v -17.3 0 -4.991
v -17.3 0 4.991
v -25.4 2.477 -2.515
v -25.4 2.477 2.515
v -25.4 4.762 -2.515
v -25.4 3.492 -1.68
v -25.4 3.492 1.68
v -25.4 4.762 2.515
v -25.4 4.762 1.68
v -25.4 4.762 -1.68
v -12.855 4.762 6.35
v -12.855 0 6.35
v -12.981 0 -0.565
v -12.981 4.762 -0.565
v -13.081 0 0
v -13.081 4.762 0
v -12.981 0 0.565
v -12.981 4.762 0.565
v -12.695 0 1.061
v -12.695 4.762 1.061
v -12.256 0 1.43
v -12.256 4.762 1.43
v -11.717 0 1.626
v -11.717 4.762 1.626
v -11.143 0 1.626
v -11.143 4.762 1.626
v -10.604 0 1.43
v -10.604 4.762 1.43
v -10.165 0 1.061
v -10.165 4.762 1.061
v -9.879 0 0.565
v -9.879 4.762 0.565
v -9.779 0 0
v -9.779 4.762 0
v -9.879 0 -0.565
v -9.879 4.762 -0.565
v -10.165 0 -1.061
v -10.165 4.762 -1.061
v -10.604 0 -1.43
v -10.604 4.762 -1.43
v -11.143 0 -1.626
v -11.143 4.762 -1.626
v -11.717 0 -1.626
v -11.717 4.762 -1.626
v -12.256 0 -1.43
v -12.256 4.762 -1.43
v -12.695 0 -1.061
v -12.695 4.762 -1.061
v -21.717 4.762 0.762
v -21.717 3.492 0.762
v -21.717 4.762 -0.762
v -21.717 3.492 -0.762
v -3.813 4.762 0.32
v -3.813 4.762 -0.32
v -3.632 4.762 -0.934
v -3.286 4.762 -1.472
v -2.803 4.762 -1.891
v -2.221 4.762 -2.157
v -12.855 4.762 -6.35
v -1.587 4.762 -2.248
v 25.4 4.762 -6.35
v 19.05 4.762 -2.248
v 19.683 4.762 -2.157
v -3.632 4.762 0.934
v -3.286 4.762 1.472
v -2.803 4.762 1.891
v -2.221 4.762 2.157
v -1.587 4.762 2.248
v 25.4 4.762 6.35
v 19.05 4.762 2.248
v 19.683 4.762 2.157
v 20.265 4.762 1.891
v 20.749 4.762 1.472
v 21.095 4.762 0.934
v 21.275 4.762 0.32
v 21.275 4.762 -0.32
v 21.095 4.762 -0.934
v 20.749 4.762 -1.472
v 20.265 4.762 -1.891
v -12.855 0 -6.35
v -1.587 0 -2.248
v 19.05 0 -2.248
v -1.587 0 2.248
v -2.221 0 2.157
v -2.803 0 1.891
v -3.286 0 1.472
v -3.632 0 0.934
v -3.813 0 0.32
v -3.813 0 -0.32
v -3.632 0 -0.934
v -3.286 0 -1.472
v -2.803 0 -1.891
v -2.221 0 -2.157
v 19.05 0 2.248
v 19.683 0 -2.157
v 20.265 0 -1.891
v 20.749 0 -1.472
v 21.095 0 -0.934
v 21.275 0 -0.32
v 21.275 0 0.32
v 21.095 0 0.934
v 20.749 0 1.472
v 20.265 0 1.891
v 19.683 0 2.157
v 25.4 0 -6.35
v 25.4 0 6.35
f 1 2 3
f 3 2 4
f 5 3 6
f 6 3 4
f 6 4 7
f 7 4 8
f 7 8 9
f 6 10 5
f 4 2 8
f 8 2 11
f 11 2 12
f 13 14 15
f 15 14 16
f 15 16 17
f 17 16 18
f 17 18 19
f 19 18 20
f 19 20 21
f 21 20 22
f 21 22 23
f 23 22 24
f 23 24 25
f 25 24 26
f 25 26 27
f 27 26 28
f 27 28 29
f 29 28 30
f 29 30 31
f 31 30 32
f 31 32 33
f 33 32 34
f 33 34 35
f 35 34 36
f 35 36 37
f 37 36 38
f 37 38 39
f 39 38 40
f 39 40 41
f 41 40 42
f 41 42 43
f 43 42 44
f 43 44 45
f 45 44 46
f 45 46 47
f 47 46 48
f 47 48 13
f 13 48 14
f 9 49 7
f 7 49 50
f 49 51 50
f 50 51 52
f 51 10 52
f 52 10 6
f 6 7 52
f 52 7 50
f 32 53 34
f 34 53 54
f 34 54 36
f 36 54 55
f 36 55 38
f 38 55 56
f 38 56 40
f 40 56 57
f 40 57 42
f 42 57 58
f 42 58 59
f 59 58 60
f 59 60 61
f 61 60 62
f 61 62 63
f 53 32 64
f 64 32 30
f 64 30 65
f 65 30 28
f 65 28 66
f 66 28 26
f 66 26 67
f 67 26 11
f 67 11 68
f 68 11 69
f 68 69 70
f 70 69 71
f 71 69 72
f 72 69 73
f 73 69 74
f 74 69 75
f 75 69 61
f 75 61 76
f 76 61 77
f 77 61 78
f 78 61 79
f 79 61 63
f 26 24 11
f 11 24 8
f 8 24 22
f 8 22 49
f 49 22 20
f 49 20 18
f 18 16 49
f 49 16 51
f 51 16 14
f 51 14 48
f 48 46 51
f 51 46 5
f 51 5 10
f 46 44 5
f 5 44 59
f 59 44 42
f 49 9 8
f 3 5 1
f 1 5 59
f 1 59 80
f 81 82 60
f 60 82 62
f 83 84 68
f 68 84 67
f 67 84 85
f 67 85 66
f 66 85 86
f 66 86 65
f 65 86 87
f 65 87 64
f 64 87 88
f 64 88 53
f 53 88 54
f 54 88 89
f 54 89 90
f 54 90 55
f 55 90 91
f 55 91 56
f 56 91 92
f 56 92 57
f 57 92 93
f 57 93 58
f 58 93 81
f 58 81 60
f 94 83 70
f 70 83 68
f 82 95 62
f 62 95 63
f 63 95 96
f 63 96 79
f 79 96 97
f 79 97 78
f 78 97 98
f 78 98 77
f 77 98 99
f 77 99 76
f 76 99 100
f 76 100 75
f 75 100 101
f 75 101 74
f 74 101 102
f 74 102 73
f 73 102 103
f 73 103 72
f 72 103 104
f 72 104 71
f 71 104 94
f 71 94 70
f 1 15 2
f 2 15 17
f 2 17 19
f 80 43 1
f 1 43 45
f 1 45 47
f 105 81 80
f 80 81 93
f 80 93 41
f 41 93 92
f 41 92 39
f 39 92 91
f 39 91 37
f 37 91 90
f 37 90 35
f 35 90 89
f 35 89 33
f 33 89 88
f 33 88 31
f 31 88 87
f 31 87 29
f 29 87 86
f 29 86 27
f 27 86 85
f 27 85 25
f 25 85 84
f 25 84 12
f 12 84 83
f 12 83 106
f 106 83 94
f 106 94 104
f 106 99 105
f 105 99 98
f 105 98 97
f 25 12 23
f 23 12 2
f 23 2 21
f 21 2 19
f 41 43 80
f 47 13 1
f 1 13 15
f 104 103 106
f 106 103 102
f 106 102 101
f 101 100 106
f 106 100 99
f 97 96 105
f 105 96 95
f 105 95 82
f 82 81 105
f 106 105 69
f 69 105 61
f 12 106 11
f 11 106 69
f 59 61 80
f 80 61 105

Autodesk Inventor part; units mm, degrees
ref_plane "XZ Plane" through (0, 0, 0) normal (0, 1, 0) x (-1, 0, 0)
sketch "Sketch1" plane through (0, 0, 0) normal (0, 1, 0) x (-1, 0, 0)
  line L0 (0, -8.89) -> (0, 8.89) projected
  line L1 (-35.56, 0) -> (35.56, 0) projected
  line L2 (25.4, -6.35) -> (-25.4, -6.35)
  line L3 (-25.4, -6.35) -> (-25.4, 6.35)
  line L4 (-25.4, 6.35) -> (25.4, 6.35)
  line L5 (25.4, 6.35) -> (25.4, -6.35)
  point P0 (0, 0)
  dimension "d0" = 12.7
  dimension "d1" = 6.35
  dimension "d2" = 50.8
  dimension "d3" = 25.4
extrude "Extrusion1" add sketch "Sketch1" along normal blind 4.7625
sketch "Sketch2" plane through (0, 4.7625, 0) normal (0, 1, 0) x (1, 0, 0)
  line L0 (25.4, 6.35) -> (-25.4, 6.35) projected
  line L1 (-25.4, 6.35) -> (-25.4, -6.35) projected
  line L2 (-25.4, -6.35) -> (25.4, -6.35) projected
  line L3 (25.4, -6.35) -> (25.4, 6.35) projected
  line L4 (-25.4, 2.5146) -> (-12.855, 6.35)
  line L5 (25.4, 6.35) -> (-25.4, 6.35) projected
  line L6 (-25.4, 6.35) -> (-25.4, -6.35) projected
  line L7 (-25.4, -2.5146) -> (-12.855, -6.35)
  line L8 (-12.855, 6.35) -> (-12.855, -6.35) construction
  line L9 (0, 8.89) -> (0, -8.89) projected
  line L10 (35.56, 0) -> (-35.56, 0) projected
  line L11 (-1.5875, 2.2479) -> (19.05, 2.2479)
  line L12 (19.05, 2.2479) -> (19.05, -2.2479)
  line L13 (19.05, -2.2479) -> (-1.5875, -2.2479)
  line L14 (-1.5875, -2.2479) -> (-1.5875, 2.2479)
  circle A0 centre (19.05, 0) radius 2.2479
  circle A1 centre (-1.5875, 0) radius 2.2479
  point P0 (0, 0)
  dimension "d6" = 163
  dimension "d7" = 163
  dimension "d8" = 5.0292
  dimension "d9" = 4.4958
  dimension "d10" = 6.35
  dimension "d11" = 20.6375
extrude "Extrusion2" cut sketch "Sketch2" against normal through all contours L4 L1 L0 | L11 A0 L10 A1 L9 | L9 A1 L11 | A1 L10 L9 | L9 L10 L14 A1 | L14 L10 A1 | A0 L10 L12 | L12 L10 A0 | L7 L2 L1 | L10 L14 A1 | A0 L12 L10 | L10 A1 L9 | L9 A1 L14 L10 | L10 A0 L13 L9 A1 | L12 A0 L10 | A1 L9 L13
sketch "Sketch3" plane through (0, 4.7625, 0) normal (0, 1, 0) x (1, 0, 0)
  line L0 (-25.4, -2.5146) -> (-12.855, -6.35) projected
  line L1 (-12.855, -6.35) -> (25.4, -6.35) projected
  line L2 (25.4, -6.35) -> (25.4, 6.35) projected
  line L3 (25.4, 6.35) -> (-12.855, 6.35) projected
  line L4 (-12.855, 6.35) -> (-25.4, 2.5146) projected
  line L5 (-25.4, 2.5146) -> (-25.4, -2.5146) projected
  line L6 (19.05, -2.2479) -> (-1.5875, -2.2479) projected
  arc A0 (-1.5875, 2.2479) -> (-1.5875, -2.2479) centre (-1.5875, 0) ccw projected
  line L7 (-1.5875, 2.2479) -> (19.05, 2.2479) projected
  arc A1 (19.05, -2.2479) -> (19.05, 2.2479) centre (19.05, 0) ccw projected
  line L8 (35.56, 0) -> (-35.56, 0) projected
  line L9 (-25.4, 1.6803) -> (-21.717, 0.762)
  line L10 (-21.717, 0.762) -> (-21.717, -0.762)
  line L11 (-21.717, -0.762) -> (-25.4, -1.6803)
  line L12 (-25.4, 2.5146) -> (-25.4, -2.5146) projected
  line L13 (-25.4, 1.6803) -> (-25.4, -1.6803)
  point P0 (0, 0)
  dimension "d14" = 28
  dimension "d15" = 14
  dimension "d16" = 3.683
  dimension "d17" = 1.524
  dimension "d18" = 0.762
extrude "Extrusion3" cut sketch "Sketch3" against normal blind 1.27 contours L5 L8 L10 L11 | L5 L9 L10 L8
sketch "Sketch4" plane through (0, 4.7625, 0) normal (0, 1, 0) x (1, 0, 0)
  line L0 (19.05, -2.2479) -> (-1.5875, -2.2479) projected
  arc A0 (-1.5875, 2.2479) -> (-1.5875, -2.2479) centre (-1.5875, 0) ccw projected
  line L1 (-1.5875, 2.2479) -> (19.05, 2.2479) projected
  arc A1 (19.05, -2.2479) -> (19.05, 2.2479) centre (19.05, 0) ccw projected
  line L2 (-25.4, 1.6803) -> (-21.717, 0.762) projected
  line L3 (-21.717, 0.762) -> (-21.717, -0.762) projected
  line L4 (-21.717, -0.762) -> (-25.4, -1.6803) projected
  line L5 (-25.4, -1.6803) -> (-25.4, -2.5146) projected
  line L6 (-25.4, -2.5146) -> (-12.855, -6.35) projected
  line L7 (-12.855, -6.35) -> (25.4, -6.35) projected
  line L8 (25.4, -6.35) -> (25.4, 6.35) projected
  line L9 (25.4, 6.35) -> (-12.855, 6.35) projected
  line L10 (-12.855, 6.35) -> (-25.4, 2.5146) projected
  line L11 (-25.4, 2.5146) -> (-25.4, 1.6803) projected
  line L12 (0, 8.89) -> (0, -8.89) projected
  line L13 (35.56, 0) -> (-35.56, 0) projected
  point P0 (0, 0)
  point P1 (-11.43, 0)
  dimension "d21" = 36.83
hole "Hole1" at (-11.43, 4.7625, 0) direction (0, -1, 0) diameter 3.302 depth 12.2936 tip angle 118 thread size "8-32 UNC" class "2B" standard "ANSI Unified Screw Threads"
sketch "Sketch6" plane through (25.4, 0, 6.35) normal (0, 0, 1) x (1, 0, 0)
  line L0 (-38.255, 0) -> (-50.8, 0) projected
  line L1 (-38.255, 4.7625) -> (-38.255, 0) projected
  line L2 (-50.8, 4.7625) -> (-38.255, 4.7625) projected
  line L3 (-50.8, 0) -> (-50.8, 4.7625) projected
  line L4 (-38.255, 4.7625) -> (-38.255, 0) projected
  line L5 (0, 0) -> (-38.255, 0) projected
  line L6 (0, 0) -> (0, 4.7625) projected
  line L7 (-38.255, 4.7625) -> (0, 4.7625) projected
  line L8 (-50.8, 2.4765) -> (-42.6997, 0)
  line L9 (-50.8, 2.4765) -> (-50.8, -12.0091)
  line L10 (-50.8, -12.0091) -> (-42.6997, -12.0091)
  line L11 (-42.6997, -12.0091) -> (-42.6997, 0)
  point P0 (-25.4, 0)
  dimension "d31" = 163
  dimension "d32" = 2.286
extrude "Extrusion4" cut sketch "Sketch6" against normal through all contours L11 L10 L9 L0 | L0 L3 L8
equation "\"d1\" = 0.5 * d0"
equation "\"d3\" = 0.5 * d2"
equation "\"d7\" = d6"
equation "\"d15\" = 0.5 * d14"
equation "\"d18\" = 0.5 * d17"
properties part number "ArmBar-V03" material "Stainless Steel"
